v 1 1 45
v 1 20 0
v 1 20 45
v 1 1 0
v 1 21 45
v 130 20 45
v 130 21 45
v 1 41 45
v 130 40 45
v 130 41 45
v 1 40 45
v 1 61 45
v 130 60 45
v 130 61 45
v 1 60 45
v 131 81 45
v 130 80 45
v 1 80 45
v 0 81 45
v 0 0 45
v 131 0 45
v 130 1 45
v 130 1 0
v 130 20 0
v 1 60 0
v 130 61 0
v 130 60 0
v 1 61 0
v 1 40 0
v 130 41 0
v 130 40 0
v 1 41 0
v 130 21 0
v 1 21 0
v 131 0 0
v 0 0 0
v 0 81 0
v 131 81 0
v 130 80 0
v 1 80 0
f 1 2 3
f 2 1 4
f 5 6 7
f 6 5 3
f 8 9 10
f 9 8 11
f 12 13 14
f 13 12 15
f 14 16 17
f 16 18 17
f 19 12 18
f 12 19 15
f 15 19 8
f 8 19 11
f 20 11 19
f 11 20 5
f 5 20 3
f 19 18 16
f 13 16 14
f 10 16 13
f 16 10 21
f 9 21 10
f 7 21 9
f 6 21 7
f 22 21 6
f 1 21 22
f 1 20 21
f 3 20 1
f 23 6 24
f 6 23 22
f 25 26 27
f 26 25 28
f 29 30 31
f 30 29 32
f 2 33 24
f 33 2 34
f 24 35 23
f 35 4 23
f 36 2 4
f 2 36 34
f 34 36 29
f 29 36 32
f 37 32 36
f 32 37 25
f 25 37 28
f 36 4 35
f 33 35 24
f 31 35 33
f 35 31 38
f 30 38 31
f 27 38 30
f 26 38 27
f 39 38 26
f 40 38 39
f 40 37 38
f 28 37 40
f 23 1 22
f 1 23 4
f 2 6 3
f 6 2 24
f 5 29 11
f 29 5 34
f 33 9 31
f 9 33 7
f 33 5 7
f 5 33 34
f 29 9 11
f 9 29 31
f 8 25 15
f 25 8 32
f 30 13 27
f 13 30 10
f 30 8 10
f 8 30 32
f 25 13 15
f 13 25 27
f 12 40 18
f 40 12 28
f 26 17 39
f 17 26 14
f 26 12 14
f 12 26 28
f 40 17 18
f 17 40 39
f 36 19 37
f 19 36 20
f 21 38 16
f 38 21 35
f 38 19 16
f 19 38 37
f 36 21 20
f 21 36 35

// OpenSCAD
ww=1;

// outer
XX=185;
YY=175;
ZZ=20;

wireboxXX=30;
bigboxXX=XX-2*wireboxXX-4*ww;

module ebox() {
    difference() {
        cube([XX,YY,ZZ]);
        translate([ww,ww,0]) cube([wireboxXX,YY-2*ww,ZZ]);
        //#translate([wireboxXX+2*ww,ww,0]) cube([wireboxXX,YY-2*ww,ZZ]);
        #translate([wireboxXX+2*ww,ww,0]) cube([wireboxXX,YY/3-2*ww,ZZ]);
        #translate([wireboxXX+2*ww,YY/3,0]) cube([wireboxXX,YY/3-2*ww,ZZ]);
        #translate([wireboxXX+2*ww,YY*2/3-ww,0]) cube([wireboxXX,YY/3,ZZ]);
        translate([2*wireboxXX+3*ww,ww,0]) cube([bigboxXX,YY-2*ww,ZZ]);
    }
}

module cardbox() {
    ww=1;
    xx=5*25.4+2+ww*2;
    yy=20;
    zz=45;
    n=4;
    difference() {
        #cube([xx,yy*n+ww,zz]);
        for (i=[0:n-1]) {
            echo(i);
            translate([ww,ww+yy*i,0]) cube([xx-2*ww,yy-ww,zz]);
        }
    }
}

module ebox2() {
    linear_extrude(ZZ) {
        difference() {
            polygon([[0,0],[0,YY],[XX,YY],[XX,0]]);
            polygon([[ww,ww],[ww,YY-ww],[XX-ww,YY-ww],[XX-ww,ww]]);
        }
    }
}


module vline(q) {
    polygon([[0,0],[0,ww],[q,ww],[q,0]]);
}

module hline(q) {
    polygon([[0,0],[ww,q],[ww,q],[0,q]]);
}


module ebox_lines() {
    linear_extrude(30) {
        vline(YY);
        translate([0,XX]) vline(YY);
        for (i = [0:3])
        translate([XX*i/4,0]) hline(YY);
    }
}



//ebox();
cardbox();
